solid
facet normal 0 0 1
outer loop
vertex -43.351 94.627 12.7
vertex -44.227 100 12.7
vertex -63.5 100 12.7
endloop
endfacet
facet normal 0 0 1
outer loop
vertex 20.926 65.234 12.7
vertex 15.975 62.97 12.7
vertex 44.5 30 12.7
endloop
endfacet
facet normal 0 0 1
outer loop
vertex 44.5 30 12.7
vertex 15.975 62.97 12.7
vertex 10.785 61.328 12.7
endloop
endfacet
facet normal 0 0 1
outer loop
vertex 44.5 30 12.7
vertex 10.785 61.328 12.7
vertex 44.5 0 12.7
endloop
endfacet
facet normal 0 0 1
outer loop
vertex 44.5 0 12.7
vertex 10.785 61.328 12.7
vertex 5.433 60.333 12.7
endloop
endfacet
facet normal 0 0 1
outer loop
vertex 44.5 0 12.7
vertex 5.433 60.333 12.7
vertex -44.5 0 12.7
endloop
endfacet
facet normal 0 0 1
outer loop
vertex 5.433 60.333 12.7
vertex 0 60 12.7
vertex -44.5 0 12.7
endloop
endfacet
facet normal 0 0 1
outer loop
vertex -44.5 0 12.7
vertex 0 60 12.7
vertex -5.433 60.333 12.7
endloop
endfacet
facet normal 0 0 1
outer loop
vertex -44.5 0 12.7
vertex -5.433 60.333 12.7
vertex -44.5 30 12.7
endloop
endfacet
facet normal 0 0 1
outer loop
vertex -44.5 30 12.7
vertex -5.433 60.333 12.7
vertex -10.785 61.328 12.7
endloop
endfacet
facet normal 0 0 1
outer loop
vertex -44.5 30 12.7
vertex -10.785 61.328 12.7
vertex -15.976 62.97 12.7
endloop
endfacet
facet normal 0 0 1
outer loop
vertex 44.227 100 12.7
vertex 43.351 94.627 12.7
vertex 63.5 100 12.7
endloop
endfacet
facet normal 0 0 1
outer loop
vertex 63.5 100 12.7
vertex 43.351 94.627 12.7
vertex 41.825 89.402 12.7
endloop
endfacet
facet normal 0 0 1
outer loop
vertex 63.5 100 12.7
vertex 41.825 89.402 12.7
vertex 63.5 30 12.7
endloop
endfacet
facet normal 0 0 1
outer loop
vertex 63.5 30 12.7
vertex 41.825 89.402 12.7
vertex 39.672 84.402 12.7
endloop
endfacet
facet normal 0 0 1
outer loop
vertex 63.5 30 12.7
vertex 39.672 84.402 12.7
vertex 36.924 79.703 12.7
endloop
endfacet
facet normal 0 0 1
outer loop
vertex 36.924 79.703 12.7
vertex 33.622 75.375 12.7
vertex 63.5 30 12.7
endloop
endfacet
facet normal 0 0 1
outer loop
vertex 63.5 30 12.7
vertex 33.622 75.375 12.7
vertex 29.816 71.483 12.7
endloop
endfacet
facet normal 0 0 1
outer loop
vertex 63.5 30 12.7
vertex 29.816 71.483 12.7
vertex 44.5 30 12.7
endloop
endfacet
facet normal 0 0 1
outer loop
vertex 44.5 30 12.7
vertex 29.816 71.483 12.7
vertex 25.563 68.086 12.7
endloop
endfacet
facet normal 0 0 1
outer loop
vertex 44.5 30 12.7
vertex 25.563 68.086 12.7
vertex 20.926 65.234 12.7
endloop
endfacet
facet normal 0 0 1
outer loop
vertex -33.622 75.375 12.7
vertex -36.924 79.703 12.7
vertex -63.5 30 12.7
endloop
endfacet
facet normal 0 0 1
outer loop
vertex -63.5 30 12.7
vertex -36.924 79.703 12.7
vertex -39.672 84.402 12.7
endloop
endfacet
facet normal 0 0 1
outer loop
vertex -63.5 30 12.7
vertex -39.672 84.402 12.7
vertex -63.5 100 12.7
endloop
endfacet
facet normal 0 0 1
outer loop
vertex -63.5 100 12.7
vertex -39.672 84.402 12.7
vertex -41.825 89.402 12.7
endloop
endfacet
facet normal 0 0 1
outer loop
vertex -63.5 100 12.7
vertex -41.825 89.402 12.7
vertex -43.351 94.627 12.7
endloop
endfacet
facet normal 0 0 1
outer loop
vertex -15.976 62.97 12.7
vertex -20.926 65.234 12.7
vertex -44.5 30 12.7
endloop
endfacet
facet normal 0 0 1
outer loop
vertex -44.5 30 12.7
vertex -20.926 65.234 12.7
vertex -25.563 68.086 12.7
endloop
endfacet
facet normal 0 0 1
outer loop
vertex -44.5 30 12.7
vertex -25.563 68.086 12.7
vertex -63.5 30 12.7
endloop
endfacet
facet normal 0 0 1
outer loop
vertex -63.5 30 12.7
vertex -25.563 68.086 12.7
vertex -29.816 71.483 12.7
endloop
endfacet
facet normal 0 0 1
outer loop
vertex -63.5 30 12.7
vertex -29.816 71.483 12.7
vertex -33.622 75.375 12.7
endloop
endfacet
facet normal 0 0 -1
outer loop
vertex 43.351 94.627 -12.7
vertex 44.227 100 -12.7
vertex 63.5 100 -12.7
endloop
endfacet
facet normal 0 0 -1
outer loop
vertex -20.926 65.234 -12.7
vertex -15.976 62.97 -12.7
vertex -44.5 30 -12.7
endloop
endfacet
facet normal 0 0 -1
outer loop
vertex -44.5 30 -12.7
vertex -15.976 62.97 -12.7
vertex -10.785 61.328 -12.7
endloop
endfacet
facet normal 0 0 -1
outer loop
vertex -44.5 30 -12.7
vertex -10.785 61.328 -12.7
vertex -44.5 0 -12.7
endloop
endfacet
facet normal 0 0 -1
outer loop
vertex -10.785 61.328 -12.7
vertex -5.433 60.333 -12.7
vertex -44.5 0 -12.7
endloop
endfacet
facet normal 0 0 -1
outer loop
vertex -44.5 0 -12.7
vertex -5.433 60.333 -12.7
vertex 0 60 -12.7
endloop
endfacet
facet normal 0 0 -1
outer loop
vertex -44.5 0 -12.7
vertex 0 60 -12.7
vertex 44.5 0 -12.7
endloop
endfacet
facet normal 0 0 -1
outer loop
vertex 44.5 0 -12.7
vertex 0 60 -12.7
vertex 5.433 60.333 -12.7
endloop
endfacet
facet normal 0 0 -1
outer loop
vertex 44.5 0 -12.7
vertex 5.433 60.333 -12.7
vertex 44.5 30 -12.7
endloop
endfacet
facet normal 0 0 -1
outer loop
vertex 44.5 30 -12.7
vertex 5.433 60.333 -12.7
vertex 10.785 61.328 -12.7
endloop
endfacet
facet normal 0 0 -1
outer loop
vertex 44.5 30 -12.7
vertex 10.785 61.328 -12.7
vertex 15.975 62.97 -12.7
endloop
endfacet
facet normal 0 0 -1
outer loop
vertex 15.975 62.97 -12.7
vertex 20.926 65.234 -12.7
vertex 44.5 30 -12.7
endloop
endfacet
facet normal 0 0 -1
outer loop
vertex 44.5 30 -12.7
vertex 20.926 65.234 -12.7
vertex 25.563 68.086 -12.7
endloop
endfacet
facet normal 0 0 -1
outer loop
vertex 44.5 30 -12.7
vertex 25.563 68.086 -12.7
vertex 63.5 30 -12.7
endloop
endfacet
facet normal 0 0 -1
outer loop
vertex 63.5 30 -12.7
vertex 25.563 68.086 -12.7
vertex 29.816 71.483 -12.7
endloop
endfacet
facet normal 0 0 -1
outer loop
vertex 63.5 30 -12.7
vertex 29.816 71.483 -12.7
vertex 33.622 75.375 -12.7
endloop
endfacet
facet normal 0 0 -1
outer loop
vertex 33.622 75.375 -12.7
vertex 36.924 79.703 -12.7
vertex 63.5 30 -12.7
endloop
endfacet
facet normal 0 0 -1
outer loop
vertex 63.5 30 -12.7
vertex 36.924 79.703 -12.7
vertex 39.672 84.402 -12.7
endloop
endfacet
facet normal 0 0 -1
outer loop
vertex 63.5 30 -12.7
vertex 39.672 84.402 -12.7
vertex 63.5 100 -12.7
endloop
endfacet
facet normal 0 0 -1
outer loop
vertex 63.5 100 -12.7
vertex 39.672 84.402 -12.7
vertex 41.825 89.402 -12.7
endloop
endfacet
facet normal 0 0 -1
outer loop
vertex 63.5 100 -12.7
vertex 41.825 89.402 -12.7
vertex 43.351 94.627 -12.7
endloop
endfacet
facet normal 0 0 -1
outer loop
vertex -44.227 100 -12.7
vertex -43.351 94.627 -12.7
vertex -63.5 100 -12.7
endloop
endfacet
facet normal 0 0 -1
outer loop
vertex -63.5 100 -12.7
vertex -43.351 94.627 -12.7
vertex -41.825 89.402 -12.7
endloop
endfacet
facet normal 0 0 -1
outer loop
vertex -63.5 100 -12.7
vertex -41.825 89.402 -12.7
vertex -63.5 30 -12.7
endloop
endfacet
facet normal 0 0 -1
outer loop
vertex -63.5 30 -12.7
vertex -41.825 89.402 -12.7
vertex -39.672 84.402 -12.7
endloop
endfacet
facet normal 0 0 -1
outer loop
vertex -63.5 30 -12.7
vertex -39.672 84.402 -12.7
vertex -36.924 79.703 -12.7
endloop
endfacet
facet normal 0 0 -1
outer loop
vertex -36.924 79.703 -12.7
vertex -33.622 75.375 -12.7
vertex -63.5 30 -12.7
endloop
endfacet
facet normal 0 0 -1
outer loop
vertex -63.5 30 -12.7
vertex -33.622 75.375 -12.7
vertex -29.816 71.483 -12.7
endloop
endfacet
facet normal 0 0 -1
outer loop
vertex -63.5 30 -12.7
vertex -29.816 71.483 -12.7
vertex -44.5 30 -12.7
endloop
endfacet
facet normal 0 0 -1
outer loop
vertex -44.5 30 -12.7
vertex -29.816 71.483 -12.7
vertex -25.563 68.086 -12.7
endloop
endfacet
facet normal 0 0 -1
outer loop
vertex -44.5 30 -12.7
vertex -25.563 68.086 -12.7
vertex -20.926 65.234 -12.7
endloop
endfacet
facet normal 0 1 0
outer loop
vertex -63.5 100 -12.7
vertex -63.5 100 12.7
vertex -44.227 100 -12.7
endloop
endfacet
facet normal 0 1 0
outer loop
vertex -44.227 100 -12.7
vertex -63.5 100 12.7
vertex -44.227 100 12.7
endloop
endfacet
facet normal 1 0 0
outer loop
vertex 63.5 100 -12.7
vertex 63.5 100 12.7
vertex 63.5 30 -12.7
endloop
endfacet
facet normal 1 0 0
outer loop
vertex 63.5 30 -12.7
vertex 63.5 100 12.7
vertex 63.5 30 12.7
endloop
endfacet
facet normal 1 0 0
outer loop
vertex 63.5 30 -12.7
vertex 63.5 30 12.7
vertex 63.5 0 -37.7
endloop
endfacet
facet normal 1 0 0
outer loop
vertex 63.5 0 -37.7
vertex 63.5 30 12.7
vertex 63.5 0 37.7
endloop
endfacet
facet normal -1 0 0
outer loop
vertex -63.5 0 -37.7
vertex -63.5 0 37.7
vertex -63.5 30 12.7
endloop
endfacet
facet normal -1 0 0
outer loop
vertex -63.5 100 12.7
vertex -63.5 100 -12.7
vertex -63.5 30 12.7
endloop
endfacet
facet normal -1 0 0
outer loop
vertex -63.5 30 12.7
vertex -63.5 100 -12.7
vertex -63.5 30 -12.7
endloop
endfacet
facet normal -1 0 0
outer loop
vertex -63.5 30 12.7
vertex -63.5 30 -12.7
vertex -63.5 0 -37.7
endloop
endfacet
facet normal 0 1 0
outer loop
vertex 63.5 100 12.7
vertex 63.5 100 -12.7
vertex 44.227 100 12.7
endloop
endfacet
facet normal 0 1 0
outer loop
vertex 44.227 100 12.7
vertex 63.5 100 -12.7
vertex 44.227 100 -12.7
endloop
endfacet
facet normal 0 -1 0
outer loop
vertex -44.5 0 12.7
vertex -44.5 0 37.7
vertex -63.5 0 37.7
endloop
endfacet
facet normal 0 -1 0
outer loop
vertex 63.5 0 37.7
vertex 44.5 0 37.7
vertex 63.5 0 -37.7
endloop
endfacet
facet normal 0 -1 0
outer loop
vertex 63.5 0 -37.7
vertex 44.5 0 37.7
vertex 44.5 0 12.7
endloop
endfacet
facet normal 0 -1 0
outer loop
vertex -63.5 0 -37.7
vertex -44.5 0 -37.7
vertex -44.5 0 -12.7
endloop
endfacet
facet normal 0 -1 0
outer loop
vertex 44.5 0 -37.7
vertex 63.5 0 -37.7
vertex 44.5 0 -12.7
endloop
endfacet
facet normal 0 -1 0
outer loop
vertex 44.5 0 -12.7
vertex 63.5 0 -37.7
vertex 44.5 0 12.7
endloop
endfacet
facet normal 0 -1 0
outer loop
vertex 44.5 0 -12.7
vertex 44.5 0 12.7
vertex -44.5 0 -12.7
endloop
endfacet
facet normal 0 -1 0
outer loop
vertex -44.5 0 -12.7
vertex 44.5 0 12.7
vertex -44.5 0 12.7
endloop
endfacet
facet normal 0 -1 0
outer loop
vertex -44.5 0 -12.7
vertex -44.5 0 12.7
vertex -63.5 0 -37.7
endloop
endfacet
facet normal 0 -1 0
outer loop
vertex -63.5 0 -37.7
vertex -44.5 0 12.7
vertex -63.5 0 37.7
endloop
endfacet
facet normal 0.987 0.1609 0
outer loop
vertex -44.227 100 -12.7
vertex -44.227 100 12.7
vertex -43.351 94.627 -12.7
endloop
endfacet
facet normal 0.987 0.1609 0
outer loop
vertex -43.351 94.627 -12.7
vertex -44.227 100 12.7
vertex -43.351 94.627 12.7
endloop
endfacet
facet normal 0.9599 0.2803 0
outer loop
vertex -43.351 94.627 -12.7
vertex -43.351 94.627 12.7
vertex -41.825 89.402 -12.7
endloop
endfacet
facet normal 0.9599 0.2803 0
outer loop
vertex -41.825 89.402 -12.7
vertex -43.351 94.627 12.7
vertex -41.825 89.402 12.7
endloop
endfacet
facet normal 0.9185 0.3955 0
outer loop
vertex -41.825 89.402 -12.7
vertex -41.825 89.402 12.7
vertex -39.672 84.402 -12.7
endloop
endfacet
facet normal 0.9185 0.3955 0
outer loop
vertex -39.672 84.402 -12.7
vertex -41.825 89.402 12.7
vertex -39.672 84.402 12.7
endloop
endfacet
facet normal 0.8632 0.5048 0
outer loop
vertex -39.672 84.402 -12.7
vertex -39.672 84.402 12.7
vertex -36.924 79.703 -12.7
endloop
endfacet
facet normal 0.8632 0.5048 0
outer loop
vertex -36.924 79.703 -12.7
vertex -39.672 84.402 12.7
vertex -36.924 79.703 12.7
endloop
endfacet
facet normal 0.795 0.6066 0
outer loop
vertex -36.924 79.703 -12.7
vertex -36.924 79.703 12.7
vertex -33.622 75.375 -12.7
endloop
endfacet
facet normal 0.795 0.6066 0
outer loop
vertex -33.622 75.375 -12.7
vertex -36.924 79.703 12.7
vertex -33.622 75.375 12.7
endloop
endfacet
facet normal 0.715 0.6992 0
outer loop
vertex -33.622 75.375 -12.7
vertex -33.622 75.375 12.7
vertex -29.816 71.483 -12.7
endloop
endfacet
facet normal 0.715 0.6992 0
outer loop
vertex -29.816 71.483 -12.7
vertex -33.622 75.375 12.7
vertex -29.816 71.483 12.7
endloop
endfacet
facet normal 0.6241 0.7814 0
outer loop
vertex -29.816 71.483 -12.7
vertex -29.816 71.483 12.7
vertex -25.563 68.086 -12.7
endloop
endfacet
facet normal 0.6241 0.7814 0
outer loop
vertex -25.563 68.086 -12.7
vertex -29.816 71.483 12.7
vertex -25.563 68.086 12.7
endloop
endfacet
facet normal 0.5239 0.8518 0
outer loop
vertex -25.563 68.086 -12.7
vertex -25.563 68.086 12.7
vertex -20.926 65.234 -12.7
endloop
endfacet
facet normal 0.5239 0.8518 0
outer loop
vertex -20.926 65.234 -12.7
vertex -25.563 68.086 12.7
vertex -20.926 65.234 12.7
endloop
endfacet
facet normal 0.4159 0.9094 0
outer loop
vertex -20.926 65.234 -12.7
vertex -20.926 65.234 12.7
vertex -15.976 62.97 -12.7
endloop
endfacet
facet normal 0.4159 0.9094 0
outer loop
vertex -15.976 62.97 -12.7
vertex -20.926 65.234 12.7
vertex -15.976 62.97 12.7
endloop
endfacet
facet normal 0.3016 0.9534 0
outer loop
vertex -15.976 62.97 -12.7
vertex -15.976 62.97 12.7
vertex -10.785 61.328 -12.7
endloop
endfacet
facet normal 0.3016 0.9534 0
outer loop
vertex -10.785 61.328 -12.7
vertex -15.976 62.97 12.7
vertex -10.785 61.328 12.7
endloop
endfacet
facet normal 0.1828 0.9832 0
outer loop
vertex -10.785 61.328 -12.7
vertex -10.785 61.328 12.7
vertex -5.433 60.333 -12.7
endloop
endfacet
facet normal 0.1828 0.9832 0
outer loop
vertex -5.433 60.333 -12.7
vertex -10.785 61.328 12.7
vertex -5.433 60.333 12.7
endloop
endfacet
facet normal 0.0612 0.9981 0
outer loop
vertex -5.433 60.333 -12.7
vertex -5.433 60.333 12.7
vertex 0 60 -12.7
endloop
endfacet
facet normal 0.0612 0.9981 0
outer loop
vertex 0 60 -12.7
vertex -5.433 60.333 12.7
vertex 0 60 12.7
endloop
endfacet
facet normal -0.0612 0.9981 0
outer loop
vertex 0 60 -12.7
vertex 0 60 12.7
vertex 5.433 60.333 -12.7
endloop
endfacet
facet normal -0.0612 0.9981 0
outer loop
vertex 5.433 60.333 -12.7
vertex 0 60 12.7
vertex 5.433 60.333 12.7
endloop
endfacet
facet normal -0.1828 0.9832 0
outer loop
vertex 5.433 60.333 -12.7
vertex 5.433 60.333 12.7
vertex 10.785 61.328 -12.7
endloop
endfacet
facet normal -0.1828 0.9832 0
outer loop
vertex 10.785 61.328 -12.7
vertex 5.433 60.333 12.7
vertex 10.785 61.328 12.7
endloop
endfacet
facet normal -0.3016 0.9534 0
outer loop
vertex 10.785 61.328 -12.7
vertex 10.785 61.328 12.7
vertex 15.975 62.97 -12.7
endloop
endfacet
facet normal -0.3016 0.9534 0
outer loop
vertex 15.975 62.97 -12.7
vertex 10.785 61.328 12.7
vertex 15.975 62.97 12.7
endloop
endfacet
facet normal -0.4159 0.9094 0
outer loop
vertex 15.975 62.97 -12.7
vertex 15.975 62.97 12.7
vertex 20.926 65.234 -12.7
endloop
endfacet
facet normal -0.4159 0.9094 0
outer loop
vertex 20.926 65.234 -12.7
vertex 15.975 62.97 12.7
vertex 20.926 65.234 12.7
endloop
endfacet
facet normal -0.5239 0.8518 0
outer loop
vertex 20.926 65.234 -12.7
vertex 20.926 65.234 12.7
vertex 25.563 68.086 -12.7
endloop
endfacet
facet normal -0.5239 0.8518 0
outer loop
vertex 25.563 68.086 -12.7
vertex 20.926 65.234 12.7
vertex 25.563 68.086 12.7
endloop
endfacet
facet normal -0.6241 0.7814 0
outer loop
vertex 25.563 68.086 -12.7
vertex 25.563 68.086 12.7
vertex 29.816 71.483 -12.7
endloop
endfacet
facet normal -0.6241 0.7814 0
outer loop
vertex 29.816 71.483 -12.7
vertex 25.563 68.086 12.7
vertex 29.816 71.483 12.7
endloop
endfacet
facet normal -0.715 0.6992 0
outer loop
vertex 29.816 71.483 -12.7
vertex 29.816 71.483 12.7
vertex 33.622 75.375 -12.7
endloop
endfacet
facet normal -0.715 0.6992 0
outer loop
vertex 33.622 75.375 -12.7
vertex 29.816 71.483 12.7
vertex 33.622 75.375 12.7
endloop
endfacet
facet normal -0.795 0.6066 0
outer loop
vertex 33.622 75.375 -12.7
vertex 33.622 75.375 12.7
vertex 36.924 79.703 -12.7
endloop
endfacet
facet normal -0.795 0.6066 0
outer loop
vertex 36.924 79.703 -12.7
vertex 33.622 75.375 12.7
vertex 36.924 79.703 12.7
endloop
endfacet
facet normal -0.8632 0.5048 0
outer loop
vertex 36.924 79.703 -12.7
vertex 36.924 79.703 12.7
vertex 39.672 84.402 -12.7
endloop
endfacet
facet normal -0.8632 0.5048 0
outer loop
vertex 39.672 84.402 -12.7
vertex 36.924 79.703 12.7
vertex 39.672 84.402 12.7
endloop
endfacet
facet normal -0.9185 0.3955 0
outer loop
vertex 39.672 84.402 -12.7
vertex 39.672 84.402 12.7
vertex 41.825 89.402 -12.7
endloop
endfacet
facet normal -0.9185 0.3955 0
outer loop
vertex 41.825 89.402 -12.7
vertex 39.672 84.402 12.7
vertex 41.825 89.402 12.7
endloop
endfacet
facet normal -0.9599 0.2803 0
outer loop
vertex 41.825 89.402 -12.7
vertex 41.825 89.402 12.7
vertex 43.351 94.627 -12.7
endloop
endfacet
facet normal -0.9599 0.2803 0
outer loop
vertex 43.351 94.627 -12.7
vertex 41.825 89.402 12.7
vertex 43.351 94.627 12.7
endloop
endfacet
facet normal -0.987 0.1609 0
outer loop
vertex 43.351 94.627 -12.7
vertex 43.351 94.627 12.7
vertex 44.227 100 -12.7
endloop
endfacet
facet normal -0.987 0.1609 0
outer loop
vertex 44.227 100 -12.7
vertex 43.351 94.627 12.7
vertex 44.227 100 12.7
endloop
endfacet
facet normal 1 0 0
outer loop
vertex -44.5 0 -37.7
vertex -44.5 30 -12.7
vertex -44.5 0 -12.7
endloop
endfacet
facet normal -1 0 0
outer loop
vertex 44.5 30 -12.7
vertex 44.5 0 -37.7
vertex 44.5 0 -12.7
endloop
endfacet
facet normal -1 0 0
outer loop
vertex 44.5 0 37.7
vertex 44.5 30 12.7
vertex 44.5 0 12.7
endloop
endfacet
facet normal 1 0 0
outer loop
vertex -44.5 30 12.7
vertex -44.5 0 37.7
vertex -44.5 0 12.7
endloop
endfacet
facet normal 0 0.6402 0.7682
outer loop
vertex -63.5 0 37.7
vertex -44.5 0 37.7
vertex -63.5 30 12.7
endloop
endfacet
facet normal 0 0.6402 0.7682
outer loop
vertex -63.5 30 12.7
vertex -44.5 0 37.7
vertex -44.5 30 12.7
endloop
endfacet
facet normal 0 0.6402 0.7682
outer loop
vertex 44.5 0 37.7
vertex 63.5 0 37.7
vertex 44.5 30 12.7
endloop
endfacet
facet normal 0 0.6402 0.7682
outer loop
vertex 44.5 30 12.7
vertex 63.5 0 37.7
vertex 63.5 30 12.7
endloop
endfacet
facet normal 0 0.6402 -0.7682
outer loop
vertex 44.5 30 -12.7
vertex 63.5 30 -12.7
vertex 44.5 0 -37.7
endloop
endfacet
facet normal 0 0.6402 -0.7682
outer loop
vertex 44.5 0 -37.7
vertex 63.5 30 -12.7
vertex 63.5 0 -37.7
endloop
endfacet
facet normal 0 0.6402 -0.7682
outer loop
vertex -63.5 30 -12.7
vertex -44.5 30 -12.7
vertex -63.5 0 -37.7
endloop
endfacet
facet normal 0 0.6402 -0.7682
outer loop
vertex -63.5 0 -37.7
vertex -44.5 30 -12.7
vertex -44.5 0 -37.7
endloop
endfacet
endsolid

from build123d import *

# Parameters (mm, degrees)
SKETCH1_W           = 127
SKETCH1_H           = 25.4
BOSS_EXTRUDE1_DEPTH = 100
SKETCH2_R           = 44.45
CUT_EXTRUDE1_DEPTH  = 30
SKETCH3_W           = 19
SKETCH3_H           = 25
BOSS_EXTRUDE2_DEPTH = 30
CUT_EXTRUDE2_DEPTH  = 140


with BuildPart() as part:
    # Sketch1 → Boss-Extrude1 (new body)
    with BuildSketch(Plane(origin=(0, 0, 0), x_dir=(1, 0, 0), z_dir=(0, 1, 0))):
        Rectangle(SKETCH1_W, SKETCH1_H)
    extrude(amount=BOSS_EXTRUDE1_DEPTH)

    # Sketch2 → Cut-Extrude1 (cut)
    with BuildSketch(Plane.XY.offset(12.7)):
        with Locations((0, 104.45)):
            Circle(SKETCH2_R)
    extrude(amount=-CUT_EXTRUDE1_DEPTH, mode=Mode.SUBTRACT)

    # Sketch3 → Boss-Extrude2 (add)
    with BuildSketch(Plane(origin=(0, 0, 0), x_dir=(1, 0, 0), z_dir=(0, 1, 0))):
        with Locations((-54, 25.2)):
            Rectangle(SKETCH3_W, SKETCH3_H)
        with Locations((54, 25.2)):
            Rectangle(SKETCH3_W, SKETCH3_H)
        with Locations((54, -25.2)):
            Rectangle(SKETCH3_W, SKETCH3_H)
        with Locations((-54, -25.2)):
            Rectangle(SKETCH3_W, SKETCH3_H)
    extrude(amount=BOSS_EXTRUDE2_DEPTH)

    # Sketch4 → Cut-Extrude2 (cut)
    with BuildSketch(Plane.ZY.offset(63.5)):
        Polygon((12.7, 30), (37.7, 0), (37.7, 30), align=None)
        Polygon((-12.7, 30), (-37.7, 0), (-37.7, 30), align=None)
    extrude(amount=-CUT_EXTRUDE2_DEPTH, mode=Mode.SUBTRACT)


solid = part.part
